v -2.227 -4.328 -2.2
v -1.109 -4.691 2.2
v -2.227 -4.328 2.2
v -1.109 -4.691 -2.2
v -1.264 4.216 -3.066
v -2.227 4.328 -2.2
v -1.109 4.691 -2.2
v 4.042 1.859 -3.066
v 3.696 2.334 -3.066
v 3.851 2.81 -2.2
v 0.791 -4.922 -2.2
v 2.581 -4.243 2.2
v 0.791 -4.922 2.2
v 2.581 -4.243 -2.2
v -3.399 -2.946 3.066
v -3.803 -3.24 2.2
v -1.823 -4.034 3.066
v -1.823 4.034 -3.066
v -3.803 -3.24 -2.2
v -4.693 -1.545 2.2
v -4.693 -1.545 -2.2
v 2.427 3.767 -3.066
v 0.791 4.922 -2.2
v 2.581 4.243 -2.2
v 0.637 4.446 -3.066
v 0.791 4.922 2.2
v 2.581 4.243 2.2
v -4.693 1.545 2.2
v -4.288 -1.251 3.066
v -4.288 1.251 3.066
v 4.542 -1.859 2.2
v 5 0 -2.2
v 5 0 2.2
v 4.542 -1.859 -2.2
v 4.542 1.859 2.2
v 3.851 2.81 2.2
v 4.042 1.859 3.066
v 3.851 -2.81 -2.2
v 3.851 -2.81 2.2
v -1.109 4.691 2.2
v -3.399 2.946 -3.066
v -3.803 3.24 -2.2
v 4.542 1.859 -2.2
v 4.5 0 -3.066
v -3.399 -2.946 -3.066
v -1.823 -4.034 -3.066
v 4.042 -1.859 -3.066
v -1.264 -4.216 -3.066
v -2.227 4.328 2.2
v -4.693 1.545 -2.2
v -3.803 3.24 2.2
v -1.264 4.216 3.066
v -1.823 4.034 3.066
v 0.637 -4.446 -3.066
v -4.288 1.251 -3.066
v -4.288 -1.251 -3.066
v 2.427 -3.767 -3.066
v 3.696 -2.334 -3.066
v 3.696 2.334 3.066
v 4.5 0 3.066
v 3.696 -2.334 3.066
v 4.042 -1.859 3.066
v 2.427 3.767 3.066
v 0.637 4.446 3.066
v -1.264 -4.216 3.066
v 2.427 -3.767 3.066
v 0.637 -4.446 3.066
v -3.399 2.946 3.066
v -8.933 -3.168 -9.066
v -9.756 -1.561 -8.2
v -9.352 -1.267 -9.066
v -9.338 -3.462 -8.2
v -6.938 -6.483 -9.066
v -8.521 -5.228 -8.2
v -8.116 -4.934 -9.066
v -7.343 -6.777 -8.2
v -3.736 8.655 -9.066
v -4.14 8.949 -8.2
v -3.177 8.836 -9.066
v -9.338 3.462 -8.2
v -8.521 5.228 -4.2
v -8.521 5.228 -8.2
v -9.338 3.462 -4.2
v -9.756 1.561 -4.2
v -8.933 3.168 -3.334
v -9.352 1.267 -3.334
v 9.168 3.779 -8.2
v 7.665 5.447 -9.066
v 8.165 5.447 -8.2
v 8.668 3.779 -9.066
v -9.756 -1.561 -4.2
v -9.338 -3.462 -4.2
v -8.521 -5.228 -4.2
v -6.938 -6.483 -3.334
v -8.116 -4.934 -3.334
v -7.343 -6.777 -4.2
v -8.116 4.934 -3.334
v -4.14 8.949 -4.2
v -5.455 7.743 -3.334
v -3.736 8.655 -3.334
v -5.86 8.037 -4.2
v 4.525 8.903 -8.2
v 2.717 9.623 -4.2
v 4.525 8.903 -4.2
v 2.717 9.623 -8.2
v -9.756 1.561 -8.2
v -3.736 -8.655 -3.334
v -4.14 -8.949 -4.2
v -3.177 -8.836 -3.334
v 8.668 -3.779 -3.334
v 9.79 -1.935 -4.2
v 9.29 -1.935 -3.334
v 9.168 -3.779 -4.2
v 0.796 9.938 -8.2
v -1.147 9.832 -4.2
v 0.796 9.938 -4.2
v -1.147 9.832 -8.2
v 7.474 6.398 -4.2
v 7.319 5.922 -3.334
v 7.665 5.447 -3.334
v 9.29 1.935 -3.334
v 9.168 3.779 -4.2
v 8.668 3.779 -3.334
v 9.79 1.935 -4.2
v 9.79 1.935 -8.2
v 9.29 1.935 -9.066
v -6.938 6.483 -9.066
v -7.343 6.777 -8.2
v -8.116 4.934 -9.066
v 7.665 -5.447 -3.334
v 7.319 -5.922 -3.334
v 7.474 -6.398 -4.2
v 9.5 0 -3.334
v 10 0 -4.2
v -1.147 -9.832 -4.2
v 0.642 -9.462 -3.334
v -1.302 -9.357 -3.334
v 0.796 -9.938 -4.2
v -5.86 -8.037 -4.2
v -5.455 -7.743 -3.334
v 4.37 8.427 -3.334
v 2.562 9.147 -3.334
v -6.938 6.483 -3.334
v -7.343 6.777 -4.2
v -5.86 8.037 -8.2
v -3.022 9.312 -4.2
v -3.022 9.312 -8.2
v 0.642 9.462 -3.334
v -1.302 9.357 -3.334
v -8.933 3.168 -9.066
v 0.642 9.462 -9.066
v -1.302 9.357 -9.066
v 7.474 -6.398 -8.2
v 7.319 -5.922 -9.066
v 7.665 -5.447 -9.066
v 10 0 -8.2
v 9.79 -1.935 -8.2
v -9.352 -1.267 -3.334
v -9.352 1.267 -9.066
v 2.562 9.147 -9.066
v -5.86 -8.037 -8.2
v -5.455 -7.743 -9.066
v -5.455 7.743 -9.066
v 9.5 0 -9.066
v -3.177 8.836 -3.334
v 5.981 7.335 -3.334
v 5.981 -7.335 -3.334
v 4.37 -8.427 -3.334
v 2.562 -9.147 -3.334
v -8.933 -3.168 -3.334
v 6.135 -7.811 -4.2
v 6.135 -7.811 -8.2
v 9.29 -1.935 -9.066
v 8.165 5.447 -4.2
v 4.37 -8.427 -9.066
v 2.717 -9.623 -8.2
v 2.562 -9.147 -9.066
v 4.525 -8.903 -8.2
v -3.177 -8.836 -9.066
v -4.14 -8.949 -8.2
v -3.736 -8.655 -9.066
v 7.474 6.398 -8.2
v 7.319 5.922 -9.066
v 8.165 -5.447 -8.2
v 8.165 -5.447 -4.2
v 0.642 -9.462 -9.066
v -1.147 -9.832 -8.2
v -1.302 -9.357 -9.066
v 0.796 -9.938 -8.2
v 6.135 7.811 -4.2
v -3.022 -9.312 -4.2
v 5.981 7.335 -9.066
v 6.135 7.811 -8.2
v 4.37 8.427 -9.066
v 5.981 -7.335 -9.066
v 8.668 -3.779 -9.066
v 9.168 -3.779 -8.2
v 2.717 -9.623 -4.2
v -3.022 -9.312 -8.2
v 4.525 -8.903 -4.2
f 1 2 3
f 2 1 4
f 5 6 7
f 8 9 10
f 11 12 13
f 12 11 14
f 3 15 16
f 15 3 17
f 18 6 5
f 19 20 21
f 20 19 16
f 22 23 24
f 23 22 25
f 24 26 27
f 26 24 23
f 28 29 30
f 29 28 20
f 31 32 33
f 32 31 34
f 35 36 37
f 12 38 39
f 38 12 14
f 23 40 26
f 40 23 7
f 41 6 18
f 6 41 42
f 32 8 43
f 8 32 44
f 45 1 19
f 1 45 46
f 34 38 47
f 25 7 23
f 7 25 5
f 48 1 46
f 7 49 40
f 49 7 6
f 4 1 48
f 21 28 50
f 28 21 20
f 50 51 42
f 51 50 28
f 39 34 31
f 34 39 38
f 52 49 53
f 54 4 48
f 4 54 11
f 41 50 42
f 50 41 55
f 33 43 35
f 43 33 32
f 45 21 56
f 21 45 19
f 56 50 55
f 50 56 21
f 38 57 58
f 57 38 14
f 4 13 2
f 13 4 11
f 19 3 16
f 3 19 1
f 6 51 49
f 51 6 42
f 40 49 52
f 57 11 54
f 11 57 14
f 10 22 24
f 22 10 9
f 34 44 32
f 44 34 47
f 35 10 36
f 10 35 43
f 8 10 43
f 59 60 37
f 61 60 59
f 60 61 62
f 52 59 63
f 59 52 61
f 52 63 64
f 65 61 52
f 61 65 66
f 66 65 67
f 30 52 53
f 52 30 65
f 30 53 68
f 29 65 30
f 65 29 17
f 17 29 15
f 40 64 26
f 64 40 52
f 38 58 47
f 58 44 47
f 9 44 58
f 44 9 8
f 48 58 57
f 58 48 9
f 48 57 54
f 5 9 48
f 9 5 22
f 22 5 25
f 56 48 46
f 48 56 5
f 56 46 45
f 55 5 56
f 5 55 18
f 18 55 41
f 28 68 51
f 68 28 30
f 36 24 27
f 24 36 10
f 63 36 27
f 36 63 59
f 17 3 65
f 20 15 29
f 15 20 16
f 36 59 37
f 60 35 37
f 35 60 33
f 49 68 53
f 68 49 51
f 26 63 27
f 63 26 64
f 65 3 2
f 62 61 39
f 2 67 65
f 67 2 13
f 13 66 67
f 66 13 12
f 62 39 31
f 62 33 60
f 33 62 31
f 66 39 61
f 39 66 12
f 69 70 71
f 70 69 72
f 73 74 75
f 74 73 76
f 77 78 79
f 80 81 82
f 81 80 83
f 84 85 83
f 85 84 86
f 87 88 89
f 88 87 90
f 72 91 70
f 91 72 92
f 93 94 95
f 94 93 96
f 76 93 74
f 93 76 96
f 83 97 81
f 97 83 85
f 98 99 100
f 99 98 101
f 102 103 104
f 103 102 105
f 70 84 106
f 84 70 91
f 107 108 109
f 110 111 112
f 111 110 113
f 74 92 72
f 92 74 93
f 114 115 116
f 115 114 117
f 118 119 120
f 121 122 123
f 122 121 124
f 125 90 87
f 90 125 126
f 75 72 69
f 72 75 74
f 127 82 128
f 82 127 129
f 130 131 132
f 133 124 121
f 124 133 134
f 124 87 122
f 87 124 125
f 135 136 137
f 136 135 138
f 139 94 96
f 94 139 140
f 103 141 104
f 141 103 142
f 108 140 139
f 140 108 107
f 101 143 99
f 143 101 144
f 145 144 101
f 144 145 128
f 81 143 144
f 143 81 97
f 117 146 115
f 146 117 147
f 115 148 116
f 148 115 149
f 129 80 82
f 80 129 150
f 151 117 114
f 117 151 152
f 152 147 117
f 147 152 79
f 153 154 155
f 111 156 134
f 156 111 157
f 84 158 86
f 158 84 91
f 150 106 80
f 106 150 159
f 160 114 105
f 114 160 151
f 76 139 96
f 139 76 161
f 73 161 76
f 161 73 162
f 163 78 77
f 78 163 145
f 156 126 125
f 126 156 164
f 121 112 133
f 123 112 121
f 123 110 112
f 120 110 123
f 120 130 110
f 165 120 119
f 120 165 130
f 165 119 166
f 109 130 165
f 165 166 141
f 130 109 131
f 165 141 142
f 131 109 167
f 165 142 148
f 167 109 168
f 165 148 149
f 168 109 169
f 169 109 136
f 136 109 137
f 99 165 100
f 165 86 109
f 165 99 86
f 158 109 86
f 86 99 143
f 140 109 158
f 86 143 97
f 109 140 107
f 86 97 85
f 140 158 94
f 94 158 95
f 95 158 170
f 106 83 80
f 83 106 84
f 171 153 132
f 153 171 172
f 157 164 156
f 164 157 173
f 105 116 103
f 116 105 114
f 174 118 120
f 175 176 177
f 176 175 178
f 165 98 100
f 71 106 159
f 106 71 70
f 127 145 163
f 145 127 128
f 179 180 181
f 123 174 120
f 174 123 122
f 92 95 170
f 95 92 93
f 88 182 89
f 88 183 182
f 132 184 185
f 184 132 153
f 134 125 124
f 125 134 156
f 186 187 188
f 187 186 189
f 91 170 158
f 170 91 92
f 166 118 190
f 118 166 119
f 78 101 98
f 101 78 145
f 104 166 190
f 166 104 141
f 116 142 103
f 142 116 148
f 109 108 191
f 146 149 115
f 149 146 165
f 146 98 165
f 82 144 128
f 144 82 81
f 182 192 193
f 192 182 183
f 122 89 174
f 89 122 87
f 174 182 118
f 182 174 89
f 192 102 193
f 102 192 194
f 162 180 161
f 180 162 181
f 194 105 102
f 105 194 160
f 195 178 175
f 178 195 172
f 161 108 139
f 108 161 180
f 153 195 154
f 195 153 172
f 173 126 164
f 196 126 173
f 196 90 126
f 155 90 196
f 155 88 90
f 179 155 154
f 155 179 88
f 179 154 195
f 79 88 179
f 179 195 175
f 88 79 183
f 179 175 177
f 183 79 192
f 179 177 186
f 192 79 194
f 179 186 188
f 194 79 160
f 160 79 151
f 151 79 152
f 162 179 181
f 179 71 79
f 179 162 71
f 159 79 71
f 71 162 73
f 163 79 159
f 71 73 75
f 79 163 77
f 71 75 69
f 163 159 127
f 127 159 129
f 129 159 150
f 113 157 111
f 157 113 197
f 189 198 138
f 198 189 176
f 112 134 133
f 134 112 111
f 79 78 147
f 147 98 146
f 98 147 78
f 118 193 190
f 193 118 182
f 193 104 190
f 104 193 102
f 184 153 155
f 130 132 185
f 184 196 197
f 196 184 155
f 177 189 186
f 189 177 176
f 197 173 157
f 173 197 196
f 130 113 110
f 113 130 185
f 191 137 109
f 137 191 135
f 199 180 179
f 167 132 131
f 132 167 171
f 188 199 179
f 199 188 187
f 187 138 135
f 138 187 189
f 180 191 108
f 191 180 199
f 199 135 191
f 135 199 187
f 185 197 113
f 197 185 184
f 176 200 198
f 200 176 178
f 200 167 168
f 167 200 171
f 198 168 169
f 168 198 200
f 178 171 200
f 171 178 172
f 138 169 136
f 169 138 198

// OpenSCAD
// ========================================
// TOLERANCE TEST PEG
// Test shaft to press into each hole of the tolerance block
// ========================================

// === PARAMETERS ===
nominal_d = 10;           // nominal shaft diameter (mm)
peg_h = 6.4;              // peg height (0.6mm shorter than hole depth)
grip_d = 20;              // grip base diameter (mm)
grip_h = 6;               // grip base height (mm)
corner_r = 1;             // corner radius (mm)

// === MODULES ===
module test_peg(d=nominal_d, h=peg_h, grip_d=grip_d, grip_h=grip_h, r=corner_r) {
    minkowski() {
        union() {
            // Main shaft (shrink by corner radius)
            cylinder(d=d-2*r, h=h-2*r, center=true);

            // Grip base at bottom (shrink by corner radius)
            translate([0, 0, -(h/2 + grip_h/2)])
                cylinder(d=grip_d-2*r, h=grip_h-2*r, center=true);
        }
        sphere(r);
    }
}

// === RENDER ===
test_peg();
